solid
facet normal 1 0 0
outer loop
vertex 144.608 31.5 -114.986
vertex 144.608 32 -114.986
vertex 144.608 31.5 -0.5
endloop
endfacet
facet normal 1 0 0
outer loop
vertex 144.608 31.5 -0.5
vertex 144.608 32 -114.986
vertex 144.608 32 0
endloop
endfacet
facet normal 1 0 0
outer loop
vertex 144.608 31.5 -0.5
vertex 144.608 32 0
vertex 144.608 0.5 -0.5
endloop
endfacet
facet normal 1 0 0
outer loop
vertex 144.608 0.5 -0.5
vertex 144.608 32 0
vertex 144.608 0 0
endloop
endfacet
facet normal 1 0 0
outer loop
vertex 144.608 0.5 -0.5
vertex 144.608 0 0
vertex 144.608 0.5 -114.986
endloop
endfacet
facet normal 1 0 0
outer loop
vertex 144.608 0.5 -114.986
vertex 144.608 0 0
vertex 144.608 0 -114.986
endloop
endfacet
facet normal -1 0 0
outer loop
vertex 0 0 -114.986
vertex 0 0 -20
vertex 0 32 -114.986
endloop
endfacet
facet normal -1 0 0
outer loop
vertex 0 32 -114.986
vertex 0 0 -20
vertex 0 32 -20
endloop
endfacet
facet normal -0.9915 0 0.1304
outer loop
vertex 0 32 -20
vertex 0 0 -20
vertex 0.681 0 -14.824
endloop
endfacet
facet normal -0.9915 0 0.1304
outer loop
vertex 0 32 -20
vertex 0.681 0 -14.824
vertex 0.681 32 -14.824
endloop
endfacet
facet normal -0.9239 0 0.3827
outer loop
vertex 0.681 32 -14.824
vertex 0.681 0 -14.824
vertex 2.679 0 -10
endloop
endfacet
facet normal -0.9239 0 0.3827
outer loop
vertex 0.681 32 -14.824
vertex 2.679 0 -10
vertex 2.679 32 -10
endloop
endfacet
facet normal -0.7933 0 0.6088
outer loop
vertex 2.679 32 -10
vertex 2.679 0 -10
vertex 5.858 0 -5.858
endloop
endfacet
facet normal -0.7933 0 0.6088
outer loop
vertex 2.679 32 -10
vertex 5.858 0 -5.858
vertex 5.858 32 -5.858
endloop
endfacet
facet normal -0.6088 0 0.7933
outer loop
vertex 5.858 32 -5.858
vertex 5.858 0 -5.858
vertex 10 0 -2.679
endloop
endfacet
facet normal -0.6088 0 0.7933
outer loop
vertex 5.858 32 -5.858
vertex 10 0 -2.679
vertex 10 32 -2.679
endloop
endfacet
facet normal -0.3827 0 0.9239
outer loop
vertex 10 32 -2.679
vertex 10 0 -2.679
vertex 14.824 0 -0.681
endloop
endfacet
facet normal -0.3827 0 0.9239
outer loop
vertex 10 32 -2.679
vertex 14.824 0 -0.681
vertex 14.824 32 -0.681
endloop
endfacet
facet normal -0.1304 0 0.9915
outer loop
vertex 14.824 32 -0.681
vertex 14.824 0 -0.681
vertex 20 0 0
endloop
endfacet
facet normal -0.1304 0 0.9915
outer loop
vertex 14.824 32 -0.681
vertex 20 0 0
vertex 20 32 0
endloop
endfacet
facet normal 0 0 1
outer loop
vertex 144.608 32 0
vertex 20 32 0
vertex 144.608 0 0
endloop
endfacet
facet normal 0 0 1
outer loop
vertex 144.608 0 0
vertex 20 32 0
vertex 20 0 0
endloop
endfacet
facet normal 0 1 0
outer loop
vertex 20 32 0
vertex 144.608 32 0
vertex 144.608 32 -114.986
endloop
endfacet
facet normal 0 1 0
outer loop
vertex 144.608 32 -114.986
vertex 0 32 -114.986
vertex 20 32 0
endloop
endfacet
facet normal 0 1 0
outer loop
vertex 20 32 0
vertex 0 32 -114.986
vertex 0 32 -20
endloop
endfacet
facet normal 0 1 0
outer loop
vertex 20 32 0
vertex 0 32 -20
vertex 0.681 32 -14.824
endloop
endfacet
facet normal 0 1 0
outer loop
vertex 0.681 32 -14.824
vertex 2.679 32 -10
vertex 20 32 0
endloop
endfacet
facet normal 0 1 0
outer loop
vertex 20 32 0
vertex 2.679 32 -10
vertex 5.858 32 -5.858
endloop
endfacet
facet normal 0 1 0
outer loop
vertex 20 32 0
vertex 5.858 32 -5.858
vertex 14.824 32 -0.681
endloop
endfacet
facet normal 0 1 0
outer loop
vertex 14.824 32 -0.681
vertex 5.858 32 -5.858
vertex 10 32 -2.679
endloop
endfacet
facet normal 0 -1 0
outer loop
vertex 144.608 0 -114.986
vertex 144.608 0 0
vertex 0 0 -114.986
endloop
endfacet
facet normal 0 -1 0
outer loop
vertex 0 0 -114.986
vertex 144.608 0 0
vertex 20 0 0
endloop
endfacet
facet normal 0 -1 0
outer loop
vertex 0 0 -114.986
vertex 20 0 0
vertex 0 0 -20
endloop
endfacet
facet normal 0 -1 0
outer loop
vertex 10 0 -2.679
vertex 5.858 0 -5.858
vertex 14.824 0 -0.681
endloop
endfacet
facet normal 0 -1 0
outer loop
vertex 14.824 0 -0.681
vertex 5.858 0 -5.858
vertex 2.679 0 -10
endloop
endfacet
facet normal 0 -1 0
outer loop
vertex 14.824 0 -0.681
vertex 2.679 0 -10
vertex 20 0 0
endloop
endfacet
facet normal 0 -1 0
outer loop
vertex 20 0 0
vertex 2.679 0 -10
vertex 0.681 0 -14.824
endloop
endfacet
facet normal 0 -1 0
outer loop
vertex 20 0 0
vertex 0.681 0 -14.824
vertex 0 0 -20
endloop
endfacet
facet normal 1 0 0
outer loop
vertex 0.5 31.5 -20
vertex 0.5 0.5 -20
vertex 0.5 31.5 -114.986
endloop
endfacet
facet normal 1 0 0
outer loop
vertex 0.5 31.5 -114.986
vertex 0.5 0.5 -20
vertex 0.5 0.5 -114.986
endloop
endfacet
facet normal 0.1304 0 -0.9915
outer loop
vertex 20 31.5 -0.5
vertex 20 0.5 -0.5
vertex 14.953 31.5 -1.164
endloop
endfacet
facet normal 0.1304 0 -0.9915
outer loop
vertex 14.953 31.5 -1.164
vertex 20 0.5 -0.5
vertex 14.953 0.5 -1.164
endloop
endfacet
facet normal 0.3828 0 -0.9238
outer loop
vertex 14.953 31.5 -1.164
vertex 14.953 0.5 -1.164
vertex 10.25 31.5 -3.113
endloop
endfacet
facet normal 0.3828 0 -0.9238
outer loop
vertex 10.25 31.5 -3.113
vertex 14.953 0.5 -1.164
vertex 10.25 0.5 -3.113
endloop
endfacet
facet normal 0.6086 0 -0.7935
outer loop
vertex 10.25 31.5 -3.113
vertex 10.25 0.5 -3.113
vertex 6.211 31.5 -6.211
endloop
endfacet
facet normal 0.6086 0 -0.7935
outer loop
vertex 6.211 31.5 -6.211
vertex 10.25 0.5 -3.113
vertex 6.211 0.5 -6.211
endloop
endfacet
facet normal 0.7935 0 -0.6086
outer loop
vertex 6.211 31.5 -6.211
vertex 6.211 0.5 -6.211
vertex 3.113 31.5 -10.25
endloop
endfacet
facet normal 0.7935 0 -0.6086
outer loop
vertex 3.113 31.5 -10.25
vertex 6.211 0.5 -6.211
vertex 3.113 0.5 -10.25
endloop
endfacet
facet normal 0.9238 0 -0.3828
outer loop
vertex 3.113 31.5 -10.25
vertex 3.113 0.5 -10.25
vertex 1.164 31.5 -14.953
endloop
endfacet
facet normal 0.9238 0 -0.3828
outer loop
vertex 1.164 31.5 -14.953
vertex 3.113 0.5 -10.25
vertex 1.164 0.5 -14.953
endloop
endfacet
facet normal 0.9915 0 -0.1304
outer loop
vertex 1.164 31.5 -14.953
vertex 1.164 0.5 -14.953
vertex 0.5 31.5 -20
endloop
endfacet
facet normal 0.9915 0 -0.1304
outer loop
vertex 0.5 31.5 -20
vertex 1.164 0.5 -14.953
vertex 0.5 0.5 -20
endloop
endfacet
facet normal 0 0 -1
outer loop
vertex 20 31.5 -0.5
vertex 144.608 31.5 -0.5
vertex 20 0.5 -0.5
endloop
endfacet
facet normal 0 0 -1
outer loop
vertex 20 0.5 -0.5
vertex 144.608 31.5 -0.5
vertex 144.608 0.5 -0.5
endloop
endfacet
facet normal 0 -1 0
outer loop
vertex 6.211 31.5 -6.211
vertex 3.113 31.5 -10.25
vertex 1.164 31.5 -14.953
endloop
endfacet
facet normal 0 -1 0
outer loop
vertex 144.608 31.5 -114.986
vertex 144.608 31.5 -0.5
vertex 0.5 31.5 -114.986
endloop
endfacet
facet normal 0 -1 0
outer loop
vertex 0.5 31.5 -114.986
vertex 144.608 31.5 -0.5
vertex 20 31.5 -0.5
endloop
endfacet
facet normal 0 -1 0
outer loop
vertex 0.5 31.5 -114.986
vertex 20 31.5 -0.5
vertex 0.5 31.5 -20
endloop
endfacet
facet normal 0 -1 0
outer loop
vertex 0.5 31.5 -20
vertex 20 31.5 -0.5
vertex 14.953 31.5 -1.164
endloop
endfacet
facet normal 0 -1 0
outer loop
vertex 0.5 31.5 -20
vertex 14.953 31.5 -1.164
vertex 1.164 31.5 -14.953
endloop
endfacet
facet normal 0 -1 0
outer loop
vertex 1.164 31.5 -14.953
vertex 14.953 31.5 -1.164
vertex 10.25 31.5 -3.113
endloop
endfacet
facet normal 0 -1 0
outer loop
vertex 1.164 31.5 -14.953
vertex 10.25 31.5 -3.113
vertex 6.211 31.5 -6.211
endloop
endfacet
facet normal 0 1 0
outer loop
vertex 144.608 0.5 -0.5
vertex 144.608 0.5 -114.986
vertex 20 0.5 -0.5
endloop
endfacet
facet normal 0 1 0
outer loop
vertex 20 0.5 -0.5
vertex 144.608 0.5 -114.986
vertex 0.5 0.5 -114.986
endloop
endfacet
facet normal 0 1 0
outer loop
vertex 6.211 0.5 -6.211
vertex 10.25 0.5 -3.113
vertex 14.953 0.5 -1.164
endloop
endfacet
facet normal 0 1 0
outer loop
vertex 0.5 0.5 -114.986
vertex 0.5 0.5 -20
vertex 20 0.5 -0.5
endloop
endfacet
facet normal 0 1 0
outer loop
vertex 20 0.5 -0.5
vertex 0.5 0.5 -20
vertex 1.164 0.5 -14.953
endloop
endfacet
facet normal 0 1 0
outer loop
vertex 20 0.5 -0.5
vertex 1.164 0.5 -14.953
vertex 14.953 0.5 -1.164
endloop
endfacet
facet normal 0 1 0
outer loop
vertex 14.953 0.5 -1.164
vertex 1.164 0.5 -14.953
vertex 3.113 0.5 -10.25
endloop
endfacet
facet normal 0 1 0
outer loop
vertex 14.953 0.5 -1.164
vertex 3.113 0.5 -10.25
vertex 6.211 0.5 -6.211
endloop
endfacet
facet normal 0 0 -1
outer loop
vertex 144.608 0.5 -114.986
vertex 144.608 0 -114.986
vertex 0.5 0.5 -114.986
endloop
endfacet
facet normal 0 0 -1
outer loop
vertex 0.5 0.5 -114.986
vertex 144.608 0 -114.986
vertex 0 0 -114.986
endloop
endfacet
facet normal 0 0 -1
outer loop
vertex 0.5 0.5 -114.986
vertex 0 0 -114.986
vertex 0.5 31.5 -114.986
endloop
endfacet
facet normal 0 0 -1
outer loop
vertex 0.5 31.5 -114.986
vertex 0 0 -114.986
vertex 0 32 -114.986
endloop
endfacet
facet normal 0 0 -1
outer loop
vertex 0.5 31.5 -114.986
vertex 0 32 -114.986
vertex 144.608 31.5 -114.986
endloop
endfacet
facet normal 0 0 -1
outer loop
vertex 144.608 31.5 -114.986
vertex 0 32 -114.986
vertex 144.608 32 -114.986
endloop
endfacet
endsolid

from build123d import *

# Parameters (mm, degrees)
SALIENTE_EXTRUIR1_DEPTH = 32
VACIADO1_T              = -0.5
CROQUIS4_W              = 144.607899287
CROQUIS4_H              = 32
CORTAR_EXTRUIR2_DEPTH   = 3


with BuildPart() as part:
    # Croquis1 → Saliente-Extruir1 (new body)
    with BuildSketch(Plane(origin=(0, 0, 0), x_dir=(1, 0, 0), z_dir=(0, 1, 0))):
        with BuildLine():
            Line((20, 0), (144.607899287, 0))
            Line((144.607899287, 0), (144.607899287, 117.986152898))
            Line((144.607899287, 117.986152898), (0, 117.986152898))
            Line((0, 117.986152898), (0, 20))
            ThreePointArc((0, 20), (5.857864376, 5.857864376), (20, 0))
        make_face()
    extrude(amount=SALIENTE_EXTRUIR1_DEPTH)

    # Vaciado1
    vaciado1_openings = [part.faces().sort_by_distance(p)[0] for p in [
        (144.607899287, 16, -58.993076449),
    ]]
    offset(amount=VACIADO1_T, openings=vaciado1_openings, kind=Kind.INTERSECTION)

    # Croquis4 → Cortar-Extruir2 (cut)
    with BuildSketch(Plane(origin=(0, 0, -117.986152898), x_dir=(-1, 0, 0), z_dir=(0, 0, -1))):
        with Locations((-72.303949644, 16)):
            Rectangle(CROQUIS4_W, CROQUIS4_H)
    extrude(amount=-CORTAR_EXTRUIR2_DEPTH, mode=Mode.SUBTRACT)


solid = part.part
